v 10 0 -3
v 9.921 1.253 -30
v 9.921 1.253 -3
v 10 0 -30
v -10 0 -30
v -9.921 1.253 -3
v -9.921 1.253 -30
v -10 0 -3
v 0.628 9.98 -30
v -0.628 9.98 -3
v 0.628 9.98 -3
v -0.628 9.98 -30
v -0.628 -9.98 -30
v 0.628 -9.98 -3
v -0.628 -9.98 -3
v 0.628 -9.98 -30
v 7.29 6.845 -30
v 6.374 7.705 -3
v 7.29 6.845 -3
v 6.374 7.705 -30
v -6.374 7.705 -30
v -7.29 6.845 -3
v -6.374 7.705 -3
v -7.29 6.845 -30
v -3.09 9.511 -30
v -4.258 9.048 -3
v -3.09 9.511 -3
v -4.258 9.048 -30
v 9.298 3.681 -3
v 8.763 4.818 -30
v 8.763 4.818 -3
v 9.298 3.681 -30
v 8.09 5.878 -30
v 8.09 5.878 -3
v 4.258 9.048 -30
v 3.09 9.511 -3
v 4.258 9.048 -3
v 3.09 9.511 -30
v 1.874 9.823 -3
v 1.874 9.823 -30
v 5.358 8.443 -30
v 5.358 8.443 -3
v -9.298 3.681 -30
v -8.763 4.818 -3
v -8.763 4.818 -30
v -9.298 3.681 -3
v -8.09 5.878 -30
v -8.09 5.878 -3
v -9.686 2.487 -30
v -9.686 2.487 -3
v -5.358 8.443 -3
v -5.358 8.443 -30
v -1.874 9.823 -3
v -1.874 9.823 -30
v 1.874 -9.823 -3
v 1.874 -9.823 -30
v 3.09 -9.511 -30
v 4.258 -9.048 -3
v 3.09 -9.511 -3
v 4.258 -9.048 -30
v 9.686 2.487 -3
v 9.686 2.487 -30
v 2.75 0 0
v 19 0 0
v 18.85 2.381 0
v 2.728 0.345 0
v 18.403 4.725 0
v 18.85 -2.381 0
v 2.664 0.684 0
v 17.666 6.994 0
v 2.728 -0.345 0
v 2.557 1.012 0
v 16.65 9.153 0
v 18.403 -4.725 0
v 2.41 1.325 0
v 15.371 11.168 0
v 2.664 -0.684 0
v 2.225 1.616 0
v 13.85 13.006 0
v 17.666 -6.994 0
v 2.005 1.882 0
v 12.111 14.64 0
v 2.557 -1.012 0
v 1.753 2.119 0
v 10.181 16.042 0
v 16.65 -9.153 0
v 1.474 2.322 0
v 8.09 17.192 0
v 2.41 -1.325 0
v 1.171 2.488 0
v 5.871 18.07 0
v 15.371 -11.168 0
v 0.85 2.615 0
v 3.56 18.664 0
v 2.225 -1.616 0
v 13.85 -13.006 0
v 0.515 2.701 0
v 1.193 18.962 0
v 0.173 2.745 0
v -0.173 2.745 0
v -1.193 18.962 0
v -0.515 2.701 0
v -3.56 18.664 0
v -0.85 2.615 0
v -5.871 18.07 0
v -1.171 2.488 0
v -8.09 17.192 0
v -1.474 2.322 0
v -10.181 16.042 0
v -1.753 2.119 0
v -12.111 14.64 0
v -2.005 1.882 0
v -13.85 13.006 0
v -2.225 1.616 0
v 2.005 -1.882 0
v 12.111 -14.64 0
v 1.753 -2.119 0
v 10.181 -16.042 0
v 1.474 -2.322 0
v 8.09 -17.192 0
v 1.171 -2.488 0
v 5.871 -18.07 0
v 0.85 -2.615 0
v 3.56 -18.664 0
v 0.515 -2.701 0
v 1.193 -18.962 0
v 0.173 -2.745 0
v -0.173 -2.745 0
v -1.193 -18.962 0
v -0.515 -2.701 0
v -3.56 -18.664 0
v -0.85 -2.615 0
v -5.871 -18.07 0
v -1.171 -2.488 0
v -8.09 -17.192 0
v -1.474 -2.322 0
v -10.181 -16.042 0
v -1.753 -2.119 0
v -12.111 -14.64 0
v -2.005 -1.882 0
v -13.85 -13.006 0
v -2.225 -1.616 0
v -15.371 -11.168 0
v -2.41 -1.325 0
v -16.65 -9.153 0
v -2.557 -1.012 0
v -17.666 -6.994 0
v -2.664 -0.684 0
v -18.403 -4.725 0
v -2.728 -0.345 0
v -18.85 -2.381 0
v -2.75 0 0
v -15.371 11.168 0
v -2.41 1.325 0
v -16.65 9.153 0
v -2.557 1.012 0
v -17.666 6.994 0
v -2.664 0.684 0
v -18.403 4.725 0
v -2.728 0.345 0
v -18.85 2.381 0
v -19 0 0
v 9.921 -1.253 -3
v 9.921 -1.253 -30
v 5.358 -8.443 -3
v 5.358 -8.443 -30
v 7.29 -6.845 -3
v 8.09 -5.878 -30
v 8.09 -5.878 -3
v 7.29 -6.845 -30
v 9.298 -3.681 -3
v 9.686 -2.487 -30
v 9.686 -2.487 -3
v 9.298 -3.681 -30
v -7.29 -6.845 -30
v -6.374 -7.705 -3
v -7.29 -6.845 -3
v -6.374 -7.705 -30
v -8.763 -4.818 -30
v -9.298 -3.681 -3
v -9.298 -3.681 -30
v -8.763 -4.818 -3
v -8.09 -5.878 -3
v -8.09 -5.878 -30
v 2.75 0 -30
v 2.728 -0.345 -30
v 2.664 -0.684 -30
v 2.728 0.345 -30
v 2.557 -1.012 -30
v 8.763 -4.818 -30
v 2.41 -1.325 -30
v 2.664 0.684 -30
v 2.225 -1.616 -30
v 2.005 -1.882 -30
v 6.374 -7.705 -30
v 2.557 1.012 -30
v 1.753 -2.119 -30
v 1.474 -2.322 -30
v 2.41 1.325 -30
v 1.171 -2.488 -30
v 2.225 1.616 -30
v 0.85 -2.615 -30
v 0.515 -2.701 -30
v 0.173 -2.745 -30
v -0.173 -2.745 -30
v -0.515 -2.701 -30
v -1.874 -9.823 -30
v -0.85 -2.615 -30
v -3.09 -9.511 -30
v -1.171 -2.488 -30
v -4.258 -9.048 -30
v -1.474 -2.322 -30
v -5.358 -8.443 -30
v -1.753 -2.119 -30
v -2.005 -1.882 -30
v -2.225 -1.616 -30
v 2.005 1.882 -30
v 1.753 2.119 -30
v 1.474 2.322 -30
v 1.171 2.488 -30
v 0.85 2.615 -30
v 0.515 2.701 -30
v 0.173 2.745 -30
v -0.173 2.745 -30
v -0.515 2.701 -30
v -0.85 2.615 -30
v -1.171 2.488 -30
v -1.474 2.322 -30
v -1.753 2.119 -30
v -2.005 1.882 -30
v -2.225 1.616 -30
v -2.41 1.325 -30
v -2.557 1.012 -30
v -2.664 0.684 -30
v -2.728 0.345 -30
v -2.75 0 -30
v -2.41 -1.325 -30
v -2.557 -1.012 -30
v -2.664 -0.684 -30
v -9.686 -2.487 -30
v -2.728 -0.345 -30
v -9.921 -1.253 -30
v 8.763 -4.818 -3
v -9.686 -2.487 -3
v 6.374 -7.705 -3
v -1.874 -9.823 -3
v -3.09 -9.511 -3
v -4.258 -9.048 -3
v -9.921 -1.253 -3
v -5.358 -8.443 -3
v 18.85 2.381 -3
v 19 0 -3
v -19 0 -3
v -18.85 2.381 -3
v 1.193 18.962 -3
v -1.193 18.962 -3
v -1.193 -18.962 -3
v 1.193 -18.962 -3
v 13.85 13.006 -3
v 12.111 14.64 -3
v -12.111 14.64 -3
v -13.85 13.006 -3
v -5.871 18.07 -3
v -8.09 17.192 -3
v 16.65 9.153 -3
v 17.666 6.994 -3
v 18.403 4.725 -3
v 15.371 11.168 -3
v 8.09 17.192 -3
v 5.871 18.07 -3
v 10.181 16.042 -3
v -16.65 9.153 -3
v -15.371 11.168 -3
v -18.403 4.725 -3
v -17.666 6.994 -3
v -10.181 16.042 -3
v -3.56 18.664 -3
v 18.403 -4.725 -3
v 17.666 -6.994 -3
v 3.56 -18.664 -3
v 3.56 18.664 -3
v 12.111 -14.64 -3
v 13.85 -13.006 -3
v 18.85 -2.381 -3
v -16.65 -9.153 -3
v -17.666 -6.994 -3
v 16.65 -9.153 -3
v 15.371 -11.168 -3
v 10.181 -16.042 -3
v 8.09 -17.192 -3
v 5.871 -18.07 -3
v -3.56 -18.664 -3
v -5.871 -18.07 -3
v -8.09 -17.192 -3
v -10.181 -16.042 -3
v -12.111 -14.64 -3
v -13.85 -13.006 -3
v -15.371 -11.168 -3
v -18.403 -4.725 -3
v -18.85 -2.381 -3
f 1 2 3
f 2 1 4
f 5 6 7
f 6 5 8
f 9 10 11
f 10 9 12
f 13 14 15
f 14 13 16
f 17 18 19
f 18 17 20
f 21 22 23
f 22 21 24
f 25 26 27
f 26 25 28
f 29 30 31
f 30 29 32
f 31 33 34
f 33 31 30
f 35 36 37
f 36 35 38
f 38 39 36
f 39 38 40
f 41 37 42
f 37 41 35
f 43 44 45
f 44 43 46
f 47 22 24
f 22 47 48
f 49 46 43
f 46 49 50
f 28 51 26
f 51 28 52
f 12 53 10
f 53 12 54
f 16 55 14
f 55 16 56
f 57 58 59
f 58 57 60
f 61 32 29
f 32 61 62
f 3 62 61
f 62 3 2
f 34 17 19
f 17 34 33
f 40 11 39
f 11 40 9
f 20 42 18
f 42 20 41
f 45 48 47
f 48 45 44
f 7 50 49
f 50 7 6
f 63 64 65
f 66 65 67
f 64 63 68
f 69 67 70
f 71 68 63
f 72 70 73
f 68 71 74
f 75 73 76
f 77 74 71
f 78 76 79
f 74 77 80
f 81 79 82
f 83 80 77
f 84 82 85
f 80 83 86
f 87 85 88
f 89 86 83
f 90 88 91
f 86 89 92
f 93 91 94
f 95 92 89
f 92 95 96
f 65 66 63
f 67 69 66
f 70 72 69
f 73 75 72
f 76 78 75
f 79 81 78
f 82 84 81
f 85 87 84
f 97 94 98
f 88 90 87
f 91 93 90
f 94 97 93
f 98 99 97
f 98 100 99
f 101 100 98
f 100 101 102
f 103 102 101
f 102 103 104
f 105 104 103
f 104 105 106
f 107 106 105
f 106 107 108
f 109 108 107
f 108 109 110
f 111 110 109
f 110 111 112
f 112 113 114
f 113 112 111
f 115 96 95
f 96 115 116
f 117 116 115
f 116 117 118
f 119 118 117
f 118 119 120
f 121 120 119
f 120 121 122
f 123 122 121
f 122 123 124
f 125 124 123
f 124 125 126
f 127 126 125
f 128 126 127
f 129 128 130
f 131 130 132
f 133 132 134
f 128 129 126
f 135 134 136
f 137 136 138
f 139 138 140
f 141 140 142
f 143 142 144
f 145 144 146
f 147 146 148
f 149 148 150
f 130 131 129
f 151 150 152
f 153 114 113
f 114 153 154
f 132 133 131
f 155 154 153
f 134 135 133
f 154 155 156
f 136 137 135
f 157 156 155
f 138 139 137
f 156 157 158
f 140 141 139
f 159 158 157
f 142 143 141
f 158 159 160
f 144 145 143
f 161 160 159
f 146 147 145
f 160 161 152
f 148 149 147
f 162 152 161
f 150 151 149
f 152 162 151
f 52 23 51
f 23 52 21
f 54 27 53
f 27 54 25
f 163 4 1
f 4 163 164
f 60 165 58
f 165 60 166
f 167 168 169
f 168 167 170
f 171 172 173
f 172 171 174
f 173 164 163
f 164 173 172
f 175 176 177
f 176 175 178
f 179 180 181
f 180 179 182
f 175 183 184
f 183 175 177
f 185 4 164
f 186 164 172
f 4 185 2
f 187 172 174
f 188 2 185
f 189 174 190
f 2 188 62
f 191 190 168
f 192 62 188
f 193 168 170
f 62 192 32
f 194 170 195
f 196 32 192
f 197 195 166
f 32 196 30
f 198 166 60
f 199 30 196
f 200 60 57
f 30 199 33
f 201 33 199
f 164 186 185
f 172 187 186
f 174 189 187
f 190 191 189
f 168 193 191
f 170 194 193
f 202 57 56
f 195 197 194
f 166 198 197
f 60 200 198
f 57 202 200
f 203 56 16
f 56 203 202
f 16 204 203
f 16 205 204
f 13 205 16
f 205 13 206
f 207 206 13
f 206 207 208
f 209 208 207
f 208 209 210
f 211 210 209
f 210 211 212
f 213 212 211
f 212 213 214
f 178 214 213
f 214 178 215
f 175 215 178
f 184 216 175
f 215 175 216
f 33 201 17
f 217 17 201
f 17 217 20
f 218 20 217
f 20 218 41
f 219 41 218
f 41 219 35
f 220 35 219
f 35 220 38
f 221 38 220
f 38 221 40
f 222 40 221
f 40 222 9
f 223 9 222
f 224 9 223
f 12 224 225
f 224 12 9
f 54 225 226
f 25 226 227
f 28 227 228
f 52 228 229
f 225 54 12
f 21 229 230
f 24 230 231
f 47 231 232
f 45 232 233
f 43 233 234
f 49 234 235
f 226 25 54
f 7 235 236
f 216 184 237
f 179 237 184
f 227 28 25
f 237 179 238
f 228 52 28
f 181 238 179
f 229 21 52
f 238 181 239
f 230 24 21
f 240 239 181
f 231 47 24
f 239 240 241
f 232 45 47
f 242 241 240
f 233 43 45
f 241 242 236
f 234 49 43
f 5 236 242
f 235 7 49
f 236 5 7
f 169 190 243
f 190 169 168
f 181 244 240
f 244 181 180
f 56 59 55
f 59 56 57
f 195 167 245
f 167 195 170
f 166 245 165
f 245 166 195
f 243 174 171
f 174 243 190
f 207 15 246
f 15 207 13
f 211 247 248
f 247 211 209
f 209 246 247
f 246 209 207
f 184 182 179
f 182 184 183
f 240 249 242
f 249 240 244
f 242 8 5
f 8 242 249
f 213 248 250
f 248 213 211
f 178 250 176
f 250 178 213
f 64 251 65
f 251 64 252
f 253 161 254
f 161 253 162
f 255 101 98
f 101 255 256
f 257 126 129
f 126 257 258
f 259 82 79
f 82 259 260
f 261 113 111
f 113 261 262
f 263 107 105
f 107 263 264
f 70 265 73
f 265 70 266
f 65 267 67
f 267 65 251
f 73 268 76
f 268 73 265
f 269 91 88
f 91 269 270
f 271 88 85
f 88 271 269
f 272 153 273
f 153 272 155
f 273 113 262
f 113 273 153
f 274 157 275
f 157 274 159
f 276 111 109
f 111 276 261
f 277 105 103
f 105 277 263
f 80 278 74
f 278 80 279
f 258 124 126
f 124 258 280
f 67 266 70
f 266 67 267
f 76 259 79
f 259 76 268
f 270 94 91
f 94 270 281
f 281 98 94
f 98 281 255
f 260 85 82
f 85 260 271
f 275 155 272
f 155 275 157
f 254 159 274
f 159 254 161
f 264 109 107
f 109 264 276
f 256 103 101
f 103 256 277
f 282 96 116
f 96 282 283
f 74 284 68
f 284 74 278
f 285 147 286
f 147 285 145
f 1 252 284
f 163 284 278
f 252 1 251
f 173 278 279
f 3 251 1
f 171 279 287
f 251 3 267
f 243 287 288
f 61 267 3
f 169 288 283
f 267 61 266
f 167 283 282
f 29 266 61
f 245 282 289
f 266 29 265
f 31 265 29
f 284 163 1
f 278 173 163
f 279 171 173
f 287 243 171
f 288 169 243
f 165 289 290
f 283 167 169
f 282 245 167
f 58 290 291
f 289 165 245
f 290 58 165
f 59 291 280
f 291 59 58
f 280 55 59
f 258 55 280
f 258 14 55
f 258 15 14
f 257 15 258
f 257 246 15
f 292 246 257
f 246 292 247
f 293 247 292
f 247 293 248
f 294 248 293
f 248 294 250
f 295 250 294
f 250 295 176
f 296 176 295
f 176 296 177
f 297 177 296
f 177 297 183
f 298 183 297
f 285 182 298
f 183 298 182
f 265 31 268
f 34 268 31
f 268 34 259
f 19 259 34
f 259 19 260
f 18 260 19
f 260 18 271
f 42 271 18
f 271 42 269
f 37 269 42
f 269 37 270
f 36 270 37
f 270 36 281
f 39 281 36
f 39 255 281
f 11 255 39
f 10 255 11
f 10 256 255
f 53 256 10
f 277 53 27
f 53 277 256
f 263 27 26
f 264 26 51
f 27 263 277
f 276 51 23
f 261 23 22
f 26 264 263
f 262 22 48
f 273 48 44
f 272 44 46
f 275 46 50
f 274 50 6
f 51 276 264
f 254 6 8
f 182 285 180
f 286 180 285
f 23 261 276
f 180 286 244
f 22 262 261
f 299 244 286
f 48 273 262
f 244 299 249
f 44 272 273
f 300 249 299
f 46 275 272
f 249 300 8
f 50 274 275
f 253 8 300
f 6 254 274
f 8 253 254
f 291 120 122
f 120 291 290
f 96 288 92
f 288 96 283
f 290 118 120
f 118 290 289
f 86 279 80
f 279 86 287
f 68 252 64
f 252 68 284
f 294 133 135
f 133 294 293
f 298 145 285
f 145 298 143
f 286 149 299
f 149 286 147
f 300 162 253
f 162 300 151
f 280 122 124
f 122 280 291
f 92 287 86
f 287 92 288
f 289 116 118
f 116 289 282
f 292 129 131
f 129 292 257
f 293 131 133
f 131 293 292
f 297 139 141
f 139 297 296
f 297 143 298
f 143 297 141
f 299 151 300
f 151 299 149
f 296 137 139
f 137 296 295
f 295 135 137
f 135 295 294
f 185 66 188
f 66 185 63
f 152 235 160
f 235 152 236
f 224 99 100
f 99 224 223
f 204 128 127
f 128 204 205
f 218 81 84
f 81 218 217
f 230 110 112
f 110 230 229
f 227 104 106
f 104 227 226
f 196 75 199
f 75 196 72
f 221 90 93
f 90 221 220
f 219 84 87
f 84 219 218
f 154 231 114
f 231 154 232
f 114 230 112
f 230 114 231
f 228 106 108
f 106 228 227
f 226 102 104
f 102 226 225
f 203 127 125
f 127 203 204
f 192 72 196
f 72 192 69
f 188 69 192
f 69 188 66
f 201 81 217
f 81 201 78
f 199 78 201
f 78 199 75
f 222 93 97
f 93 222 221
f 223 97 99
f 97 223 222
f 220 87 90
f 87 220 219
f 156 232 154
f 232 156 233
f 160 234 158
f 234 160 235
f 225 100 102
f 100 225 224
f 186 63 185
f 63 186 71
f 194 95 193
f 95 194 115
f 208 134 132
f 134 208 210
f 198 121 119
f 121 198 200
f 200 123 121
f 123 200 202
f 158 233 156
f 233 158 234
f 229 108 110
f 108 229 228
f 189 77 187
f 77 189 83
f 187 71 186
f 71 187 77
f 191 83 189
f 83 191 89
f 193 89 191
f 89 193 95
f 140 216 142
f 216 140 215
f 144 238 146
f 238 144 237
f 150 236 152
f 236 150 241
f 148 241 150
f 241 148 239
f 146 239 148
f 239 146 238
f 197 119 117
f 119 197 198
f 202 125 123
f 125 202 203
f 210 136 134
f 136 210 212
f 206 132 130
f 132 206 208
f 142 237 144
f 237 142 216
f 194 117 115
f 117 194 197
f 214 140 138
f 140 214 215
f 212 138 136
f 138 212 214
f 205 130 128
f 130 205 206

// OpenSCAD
$fn = 50;


difference() {
	union() {
		translate(v = [0, 0, -30.0000000000]) {
			cylinder(h = 30, r = 10.0000000000);
		}
		translate(v = [0, 0, -3.0000000000]) {
			cylinder(h = 3, r = 19.0000000000);
		}
	}
	union() {
		#translate(v = [0, 0, -30]) {
			cylinder(h = 30, r = 2.7500000000);
		}
	}
}
